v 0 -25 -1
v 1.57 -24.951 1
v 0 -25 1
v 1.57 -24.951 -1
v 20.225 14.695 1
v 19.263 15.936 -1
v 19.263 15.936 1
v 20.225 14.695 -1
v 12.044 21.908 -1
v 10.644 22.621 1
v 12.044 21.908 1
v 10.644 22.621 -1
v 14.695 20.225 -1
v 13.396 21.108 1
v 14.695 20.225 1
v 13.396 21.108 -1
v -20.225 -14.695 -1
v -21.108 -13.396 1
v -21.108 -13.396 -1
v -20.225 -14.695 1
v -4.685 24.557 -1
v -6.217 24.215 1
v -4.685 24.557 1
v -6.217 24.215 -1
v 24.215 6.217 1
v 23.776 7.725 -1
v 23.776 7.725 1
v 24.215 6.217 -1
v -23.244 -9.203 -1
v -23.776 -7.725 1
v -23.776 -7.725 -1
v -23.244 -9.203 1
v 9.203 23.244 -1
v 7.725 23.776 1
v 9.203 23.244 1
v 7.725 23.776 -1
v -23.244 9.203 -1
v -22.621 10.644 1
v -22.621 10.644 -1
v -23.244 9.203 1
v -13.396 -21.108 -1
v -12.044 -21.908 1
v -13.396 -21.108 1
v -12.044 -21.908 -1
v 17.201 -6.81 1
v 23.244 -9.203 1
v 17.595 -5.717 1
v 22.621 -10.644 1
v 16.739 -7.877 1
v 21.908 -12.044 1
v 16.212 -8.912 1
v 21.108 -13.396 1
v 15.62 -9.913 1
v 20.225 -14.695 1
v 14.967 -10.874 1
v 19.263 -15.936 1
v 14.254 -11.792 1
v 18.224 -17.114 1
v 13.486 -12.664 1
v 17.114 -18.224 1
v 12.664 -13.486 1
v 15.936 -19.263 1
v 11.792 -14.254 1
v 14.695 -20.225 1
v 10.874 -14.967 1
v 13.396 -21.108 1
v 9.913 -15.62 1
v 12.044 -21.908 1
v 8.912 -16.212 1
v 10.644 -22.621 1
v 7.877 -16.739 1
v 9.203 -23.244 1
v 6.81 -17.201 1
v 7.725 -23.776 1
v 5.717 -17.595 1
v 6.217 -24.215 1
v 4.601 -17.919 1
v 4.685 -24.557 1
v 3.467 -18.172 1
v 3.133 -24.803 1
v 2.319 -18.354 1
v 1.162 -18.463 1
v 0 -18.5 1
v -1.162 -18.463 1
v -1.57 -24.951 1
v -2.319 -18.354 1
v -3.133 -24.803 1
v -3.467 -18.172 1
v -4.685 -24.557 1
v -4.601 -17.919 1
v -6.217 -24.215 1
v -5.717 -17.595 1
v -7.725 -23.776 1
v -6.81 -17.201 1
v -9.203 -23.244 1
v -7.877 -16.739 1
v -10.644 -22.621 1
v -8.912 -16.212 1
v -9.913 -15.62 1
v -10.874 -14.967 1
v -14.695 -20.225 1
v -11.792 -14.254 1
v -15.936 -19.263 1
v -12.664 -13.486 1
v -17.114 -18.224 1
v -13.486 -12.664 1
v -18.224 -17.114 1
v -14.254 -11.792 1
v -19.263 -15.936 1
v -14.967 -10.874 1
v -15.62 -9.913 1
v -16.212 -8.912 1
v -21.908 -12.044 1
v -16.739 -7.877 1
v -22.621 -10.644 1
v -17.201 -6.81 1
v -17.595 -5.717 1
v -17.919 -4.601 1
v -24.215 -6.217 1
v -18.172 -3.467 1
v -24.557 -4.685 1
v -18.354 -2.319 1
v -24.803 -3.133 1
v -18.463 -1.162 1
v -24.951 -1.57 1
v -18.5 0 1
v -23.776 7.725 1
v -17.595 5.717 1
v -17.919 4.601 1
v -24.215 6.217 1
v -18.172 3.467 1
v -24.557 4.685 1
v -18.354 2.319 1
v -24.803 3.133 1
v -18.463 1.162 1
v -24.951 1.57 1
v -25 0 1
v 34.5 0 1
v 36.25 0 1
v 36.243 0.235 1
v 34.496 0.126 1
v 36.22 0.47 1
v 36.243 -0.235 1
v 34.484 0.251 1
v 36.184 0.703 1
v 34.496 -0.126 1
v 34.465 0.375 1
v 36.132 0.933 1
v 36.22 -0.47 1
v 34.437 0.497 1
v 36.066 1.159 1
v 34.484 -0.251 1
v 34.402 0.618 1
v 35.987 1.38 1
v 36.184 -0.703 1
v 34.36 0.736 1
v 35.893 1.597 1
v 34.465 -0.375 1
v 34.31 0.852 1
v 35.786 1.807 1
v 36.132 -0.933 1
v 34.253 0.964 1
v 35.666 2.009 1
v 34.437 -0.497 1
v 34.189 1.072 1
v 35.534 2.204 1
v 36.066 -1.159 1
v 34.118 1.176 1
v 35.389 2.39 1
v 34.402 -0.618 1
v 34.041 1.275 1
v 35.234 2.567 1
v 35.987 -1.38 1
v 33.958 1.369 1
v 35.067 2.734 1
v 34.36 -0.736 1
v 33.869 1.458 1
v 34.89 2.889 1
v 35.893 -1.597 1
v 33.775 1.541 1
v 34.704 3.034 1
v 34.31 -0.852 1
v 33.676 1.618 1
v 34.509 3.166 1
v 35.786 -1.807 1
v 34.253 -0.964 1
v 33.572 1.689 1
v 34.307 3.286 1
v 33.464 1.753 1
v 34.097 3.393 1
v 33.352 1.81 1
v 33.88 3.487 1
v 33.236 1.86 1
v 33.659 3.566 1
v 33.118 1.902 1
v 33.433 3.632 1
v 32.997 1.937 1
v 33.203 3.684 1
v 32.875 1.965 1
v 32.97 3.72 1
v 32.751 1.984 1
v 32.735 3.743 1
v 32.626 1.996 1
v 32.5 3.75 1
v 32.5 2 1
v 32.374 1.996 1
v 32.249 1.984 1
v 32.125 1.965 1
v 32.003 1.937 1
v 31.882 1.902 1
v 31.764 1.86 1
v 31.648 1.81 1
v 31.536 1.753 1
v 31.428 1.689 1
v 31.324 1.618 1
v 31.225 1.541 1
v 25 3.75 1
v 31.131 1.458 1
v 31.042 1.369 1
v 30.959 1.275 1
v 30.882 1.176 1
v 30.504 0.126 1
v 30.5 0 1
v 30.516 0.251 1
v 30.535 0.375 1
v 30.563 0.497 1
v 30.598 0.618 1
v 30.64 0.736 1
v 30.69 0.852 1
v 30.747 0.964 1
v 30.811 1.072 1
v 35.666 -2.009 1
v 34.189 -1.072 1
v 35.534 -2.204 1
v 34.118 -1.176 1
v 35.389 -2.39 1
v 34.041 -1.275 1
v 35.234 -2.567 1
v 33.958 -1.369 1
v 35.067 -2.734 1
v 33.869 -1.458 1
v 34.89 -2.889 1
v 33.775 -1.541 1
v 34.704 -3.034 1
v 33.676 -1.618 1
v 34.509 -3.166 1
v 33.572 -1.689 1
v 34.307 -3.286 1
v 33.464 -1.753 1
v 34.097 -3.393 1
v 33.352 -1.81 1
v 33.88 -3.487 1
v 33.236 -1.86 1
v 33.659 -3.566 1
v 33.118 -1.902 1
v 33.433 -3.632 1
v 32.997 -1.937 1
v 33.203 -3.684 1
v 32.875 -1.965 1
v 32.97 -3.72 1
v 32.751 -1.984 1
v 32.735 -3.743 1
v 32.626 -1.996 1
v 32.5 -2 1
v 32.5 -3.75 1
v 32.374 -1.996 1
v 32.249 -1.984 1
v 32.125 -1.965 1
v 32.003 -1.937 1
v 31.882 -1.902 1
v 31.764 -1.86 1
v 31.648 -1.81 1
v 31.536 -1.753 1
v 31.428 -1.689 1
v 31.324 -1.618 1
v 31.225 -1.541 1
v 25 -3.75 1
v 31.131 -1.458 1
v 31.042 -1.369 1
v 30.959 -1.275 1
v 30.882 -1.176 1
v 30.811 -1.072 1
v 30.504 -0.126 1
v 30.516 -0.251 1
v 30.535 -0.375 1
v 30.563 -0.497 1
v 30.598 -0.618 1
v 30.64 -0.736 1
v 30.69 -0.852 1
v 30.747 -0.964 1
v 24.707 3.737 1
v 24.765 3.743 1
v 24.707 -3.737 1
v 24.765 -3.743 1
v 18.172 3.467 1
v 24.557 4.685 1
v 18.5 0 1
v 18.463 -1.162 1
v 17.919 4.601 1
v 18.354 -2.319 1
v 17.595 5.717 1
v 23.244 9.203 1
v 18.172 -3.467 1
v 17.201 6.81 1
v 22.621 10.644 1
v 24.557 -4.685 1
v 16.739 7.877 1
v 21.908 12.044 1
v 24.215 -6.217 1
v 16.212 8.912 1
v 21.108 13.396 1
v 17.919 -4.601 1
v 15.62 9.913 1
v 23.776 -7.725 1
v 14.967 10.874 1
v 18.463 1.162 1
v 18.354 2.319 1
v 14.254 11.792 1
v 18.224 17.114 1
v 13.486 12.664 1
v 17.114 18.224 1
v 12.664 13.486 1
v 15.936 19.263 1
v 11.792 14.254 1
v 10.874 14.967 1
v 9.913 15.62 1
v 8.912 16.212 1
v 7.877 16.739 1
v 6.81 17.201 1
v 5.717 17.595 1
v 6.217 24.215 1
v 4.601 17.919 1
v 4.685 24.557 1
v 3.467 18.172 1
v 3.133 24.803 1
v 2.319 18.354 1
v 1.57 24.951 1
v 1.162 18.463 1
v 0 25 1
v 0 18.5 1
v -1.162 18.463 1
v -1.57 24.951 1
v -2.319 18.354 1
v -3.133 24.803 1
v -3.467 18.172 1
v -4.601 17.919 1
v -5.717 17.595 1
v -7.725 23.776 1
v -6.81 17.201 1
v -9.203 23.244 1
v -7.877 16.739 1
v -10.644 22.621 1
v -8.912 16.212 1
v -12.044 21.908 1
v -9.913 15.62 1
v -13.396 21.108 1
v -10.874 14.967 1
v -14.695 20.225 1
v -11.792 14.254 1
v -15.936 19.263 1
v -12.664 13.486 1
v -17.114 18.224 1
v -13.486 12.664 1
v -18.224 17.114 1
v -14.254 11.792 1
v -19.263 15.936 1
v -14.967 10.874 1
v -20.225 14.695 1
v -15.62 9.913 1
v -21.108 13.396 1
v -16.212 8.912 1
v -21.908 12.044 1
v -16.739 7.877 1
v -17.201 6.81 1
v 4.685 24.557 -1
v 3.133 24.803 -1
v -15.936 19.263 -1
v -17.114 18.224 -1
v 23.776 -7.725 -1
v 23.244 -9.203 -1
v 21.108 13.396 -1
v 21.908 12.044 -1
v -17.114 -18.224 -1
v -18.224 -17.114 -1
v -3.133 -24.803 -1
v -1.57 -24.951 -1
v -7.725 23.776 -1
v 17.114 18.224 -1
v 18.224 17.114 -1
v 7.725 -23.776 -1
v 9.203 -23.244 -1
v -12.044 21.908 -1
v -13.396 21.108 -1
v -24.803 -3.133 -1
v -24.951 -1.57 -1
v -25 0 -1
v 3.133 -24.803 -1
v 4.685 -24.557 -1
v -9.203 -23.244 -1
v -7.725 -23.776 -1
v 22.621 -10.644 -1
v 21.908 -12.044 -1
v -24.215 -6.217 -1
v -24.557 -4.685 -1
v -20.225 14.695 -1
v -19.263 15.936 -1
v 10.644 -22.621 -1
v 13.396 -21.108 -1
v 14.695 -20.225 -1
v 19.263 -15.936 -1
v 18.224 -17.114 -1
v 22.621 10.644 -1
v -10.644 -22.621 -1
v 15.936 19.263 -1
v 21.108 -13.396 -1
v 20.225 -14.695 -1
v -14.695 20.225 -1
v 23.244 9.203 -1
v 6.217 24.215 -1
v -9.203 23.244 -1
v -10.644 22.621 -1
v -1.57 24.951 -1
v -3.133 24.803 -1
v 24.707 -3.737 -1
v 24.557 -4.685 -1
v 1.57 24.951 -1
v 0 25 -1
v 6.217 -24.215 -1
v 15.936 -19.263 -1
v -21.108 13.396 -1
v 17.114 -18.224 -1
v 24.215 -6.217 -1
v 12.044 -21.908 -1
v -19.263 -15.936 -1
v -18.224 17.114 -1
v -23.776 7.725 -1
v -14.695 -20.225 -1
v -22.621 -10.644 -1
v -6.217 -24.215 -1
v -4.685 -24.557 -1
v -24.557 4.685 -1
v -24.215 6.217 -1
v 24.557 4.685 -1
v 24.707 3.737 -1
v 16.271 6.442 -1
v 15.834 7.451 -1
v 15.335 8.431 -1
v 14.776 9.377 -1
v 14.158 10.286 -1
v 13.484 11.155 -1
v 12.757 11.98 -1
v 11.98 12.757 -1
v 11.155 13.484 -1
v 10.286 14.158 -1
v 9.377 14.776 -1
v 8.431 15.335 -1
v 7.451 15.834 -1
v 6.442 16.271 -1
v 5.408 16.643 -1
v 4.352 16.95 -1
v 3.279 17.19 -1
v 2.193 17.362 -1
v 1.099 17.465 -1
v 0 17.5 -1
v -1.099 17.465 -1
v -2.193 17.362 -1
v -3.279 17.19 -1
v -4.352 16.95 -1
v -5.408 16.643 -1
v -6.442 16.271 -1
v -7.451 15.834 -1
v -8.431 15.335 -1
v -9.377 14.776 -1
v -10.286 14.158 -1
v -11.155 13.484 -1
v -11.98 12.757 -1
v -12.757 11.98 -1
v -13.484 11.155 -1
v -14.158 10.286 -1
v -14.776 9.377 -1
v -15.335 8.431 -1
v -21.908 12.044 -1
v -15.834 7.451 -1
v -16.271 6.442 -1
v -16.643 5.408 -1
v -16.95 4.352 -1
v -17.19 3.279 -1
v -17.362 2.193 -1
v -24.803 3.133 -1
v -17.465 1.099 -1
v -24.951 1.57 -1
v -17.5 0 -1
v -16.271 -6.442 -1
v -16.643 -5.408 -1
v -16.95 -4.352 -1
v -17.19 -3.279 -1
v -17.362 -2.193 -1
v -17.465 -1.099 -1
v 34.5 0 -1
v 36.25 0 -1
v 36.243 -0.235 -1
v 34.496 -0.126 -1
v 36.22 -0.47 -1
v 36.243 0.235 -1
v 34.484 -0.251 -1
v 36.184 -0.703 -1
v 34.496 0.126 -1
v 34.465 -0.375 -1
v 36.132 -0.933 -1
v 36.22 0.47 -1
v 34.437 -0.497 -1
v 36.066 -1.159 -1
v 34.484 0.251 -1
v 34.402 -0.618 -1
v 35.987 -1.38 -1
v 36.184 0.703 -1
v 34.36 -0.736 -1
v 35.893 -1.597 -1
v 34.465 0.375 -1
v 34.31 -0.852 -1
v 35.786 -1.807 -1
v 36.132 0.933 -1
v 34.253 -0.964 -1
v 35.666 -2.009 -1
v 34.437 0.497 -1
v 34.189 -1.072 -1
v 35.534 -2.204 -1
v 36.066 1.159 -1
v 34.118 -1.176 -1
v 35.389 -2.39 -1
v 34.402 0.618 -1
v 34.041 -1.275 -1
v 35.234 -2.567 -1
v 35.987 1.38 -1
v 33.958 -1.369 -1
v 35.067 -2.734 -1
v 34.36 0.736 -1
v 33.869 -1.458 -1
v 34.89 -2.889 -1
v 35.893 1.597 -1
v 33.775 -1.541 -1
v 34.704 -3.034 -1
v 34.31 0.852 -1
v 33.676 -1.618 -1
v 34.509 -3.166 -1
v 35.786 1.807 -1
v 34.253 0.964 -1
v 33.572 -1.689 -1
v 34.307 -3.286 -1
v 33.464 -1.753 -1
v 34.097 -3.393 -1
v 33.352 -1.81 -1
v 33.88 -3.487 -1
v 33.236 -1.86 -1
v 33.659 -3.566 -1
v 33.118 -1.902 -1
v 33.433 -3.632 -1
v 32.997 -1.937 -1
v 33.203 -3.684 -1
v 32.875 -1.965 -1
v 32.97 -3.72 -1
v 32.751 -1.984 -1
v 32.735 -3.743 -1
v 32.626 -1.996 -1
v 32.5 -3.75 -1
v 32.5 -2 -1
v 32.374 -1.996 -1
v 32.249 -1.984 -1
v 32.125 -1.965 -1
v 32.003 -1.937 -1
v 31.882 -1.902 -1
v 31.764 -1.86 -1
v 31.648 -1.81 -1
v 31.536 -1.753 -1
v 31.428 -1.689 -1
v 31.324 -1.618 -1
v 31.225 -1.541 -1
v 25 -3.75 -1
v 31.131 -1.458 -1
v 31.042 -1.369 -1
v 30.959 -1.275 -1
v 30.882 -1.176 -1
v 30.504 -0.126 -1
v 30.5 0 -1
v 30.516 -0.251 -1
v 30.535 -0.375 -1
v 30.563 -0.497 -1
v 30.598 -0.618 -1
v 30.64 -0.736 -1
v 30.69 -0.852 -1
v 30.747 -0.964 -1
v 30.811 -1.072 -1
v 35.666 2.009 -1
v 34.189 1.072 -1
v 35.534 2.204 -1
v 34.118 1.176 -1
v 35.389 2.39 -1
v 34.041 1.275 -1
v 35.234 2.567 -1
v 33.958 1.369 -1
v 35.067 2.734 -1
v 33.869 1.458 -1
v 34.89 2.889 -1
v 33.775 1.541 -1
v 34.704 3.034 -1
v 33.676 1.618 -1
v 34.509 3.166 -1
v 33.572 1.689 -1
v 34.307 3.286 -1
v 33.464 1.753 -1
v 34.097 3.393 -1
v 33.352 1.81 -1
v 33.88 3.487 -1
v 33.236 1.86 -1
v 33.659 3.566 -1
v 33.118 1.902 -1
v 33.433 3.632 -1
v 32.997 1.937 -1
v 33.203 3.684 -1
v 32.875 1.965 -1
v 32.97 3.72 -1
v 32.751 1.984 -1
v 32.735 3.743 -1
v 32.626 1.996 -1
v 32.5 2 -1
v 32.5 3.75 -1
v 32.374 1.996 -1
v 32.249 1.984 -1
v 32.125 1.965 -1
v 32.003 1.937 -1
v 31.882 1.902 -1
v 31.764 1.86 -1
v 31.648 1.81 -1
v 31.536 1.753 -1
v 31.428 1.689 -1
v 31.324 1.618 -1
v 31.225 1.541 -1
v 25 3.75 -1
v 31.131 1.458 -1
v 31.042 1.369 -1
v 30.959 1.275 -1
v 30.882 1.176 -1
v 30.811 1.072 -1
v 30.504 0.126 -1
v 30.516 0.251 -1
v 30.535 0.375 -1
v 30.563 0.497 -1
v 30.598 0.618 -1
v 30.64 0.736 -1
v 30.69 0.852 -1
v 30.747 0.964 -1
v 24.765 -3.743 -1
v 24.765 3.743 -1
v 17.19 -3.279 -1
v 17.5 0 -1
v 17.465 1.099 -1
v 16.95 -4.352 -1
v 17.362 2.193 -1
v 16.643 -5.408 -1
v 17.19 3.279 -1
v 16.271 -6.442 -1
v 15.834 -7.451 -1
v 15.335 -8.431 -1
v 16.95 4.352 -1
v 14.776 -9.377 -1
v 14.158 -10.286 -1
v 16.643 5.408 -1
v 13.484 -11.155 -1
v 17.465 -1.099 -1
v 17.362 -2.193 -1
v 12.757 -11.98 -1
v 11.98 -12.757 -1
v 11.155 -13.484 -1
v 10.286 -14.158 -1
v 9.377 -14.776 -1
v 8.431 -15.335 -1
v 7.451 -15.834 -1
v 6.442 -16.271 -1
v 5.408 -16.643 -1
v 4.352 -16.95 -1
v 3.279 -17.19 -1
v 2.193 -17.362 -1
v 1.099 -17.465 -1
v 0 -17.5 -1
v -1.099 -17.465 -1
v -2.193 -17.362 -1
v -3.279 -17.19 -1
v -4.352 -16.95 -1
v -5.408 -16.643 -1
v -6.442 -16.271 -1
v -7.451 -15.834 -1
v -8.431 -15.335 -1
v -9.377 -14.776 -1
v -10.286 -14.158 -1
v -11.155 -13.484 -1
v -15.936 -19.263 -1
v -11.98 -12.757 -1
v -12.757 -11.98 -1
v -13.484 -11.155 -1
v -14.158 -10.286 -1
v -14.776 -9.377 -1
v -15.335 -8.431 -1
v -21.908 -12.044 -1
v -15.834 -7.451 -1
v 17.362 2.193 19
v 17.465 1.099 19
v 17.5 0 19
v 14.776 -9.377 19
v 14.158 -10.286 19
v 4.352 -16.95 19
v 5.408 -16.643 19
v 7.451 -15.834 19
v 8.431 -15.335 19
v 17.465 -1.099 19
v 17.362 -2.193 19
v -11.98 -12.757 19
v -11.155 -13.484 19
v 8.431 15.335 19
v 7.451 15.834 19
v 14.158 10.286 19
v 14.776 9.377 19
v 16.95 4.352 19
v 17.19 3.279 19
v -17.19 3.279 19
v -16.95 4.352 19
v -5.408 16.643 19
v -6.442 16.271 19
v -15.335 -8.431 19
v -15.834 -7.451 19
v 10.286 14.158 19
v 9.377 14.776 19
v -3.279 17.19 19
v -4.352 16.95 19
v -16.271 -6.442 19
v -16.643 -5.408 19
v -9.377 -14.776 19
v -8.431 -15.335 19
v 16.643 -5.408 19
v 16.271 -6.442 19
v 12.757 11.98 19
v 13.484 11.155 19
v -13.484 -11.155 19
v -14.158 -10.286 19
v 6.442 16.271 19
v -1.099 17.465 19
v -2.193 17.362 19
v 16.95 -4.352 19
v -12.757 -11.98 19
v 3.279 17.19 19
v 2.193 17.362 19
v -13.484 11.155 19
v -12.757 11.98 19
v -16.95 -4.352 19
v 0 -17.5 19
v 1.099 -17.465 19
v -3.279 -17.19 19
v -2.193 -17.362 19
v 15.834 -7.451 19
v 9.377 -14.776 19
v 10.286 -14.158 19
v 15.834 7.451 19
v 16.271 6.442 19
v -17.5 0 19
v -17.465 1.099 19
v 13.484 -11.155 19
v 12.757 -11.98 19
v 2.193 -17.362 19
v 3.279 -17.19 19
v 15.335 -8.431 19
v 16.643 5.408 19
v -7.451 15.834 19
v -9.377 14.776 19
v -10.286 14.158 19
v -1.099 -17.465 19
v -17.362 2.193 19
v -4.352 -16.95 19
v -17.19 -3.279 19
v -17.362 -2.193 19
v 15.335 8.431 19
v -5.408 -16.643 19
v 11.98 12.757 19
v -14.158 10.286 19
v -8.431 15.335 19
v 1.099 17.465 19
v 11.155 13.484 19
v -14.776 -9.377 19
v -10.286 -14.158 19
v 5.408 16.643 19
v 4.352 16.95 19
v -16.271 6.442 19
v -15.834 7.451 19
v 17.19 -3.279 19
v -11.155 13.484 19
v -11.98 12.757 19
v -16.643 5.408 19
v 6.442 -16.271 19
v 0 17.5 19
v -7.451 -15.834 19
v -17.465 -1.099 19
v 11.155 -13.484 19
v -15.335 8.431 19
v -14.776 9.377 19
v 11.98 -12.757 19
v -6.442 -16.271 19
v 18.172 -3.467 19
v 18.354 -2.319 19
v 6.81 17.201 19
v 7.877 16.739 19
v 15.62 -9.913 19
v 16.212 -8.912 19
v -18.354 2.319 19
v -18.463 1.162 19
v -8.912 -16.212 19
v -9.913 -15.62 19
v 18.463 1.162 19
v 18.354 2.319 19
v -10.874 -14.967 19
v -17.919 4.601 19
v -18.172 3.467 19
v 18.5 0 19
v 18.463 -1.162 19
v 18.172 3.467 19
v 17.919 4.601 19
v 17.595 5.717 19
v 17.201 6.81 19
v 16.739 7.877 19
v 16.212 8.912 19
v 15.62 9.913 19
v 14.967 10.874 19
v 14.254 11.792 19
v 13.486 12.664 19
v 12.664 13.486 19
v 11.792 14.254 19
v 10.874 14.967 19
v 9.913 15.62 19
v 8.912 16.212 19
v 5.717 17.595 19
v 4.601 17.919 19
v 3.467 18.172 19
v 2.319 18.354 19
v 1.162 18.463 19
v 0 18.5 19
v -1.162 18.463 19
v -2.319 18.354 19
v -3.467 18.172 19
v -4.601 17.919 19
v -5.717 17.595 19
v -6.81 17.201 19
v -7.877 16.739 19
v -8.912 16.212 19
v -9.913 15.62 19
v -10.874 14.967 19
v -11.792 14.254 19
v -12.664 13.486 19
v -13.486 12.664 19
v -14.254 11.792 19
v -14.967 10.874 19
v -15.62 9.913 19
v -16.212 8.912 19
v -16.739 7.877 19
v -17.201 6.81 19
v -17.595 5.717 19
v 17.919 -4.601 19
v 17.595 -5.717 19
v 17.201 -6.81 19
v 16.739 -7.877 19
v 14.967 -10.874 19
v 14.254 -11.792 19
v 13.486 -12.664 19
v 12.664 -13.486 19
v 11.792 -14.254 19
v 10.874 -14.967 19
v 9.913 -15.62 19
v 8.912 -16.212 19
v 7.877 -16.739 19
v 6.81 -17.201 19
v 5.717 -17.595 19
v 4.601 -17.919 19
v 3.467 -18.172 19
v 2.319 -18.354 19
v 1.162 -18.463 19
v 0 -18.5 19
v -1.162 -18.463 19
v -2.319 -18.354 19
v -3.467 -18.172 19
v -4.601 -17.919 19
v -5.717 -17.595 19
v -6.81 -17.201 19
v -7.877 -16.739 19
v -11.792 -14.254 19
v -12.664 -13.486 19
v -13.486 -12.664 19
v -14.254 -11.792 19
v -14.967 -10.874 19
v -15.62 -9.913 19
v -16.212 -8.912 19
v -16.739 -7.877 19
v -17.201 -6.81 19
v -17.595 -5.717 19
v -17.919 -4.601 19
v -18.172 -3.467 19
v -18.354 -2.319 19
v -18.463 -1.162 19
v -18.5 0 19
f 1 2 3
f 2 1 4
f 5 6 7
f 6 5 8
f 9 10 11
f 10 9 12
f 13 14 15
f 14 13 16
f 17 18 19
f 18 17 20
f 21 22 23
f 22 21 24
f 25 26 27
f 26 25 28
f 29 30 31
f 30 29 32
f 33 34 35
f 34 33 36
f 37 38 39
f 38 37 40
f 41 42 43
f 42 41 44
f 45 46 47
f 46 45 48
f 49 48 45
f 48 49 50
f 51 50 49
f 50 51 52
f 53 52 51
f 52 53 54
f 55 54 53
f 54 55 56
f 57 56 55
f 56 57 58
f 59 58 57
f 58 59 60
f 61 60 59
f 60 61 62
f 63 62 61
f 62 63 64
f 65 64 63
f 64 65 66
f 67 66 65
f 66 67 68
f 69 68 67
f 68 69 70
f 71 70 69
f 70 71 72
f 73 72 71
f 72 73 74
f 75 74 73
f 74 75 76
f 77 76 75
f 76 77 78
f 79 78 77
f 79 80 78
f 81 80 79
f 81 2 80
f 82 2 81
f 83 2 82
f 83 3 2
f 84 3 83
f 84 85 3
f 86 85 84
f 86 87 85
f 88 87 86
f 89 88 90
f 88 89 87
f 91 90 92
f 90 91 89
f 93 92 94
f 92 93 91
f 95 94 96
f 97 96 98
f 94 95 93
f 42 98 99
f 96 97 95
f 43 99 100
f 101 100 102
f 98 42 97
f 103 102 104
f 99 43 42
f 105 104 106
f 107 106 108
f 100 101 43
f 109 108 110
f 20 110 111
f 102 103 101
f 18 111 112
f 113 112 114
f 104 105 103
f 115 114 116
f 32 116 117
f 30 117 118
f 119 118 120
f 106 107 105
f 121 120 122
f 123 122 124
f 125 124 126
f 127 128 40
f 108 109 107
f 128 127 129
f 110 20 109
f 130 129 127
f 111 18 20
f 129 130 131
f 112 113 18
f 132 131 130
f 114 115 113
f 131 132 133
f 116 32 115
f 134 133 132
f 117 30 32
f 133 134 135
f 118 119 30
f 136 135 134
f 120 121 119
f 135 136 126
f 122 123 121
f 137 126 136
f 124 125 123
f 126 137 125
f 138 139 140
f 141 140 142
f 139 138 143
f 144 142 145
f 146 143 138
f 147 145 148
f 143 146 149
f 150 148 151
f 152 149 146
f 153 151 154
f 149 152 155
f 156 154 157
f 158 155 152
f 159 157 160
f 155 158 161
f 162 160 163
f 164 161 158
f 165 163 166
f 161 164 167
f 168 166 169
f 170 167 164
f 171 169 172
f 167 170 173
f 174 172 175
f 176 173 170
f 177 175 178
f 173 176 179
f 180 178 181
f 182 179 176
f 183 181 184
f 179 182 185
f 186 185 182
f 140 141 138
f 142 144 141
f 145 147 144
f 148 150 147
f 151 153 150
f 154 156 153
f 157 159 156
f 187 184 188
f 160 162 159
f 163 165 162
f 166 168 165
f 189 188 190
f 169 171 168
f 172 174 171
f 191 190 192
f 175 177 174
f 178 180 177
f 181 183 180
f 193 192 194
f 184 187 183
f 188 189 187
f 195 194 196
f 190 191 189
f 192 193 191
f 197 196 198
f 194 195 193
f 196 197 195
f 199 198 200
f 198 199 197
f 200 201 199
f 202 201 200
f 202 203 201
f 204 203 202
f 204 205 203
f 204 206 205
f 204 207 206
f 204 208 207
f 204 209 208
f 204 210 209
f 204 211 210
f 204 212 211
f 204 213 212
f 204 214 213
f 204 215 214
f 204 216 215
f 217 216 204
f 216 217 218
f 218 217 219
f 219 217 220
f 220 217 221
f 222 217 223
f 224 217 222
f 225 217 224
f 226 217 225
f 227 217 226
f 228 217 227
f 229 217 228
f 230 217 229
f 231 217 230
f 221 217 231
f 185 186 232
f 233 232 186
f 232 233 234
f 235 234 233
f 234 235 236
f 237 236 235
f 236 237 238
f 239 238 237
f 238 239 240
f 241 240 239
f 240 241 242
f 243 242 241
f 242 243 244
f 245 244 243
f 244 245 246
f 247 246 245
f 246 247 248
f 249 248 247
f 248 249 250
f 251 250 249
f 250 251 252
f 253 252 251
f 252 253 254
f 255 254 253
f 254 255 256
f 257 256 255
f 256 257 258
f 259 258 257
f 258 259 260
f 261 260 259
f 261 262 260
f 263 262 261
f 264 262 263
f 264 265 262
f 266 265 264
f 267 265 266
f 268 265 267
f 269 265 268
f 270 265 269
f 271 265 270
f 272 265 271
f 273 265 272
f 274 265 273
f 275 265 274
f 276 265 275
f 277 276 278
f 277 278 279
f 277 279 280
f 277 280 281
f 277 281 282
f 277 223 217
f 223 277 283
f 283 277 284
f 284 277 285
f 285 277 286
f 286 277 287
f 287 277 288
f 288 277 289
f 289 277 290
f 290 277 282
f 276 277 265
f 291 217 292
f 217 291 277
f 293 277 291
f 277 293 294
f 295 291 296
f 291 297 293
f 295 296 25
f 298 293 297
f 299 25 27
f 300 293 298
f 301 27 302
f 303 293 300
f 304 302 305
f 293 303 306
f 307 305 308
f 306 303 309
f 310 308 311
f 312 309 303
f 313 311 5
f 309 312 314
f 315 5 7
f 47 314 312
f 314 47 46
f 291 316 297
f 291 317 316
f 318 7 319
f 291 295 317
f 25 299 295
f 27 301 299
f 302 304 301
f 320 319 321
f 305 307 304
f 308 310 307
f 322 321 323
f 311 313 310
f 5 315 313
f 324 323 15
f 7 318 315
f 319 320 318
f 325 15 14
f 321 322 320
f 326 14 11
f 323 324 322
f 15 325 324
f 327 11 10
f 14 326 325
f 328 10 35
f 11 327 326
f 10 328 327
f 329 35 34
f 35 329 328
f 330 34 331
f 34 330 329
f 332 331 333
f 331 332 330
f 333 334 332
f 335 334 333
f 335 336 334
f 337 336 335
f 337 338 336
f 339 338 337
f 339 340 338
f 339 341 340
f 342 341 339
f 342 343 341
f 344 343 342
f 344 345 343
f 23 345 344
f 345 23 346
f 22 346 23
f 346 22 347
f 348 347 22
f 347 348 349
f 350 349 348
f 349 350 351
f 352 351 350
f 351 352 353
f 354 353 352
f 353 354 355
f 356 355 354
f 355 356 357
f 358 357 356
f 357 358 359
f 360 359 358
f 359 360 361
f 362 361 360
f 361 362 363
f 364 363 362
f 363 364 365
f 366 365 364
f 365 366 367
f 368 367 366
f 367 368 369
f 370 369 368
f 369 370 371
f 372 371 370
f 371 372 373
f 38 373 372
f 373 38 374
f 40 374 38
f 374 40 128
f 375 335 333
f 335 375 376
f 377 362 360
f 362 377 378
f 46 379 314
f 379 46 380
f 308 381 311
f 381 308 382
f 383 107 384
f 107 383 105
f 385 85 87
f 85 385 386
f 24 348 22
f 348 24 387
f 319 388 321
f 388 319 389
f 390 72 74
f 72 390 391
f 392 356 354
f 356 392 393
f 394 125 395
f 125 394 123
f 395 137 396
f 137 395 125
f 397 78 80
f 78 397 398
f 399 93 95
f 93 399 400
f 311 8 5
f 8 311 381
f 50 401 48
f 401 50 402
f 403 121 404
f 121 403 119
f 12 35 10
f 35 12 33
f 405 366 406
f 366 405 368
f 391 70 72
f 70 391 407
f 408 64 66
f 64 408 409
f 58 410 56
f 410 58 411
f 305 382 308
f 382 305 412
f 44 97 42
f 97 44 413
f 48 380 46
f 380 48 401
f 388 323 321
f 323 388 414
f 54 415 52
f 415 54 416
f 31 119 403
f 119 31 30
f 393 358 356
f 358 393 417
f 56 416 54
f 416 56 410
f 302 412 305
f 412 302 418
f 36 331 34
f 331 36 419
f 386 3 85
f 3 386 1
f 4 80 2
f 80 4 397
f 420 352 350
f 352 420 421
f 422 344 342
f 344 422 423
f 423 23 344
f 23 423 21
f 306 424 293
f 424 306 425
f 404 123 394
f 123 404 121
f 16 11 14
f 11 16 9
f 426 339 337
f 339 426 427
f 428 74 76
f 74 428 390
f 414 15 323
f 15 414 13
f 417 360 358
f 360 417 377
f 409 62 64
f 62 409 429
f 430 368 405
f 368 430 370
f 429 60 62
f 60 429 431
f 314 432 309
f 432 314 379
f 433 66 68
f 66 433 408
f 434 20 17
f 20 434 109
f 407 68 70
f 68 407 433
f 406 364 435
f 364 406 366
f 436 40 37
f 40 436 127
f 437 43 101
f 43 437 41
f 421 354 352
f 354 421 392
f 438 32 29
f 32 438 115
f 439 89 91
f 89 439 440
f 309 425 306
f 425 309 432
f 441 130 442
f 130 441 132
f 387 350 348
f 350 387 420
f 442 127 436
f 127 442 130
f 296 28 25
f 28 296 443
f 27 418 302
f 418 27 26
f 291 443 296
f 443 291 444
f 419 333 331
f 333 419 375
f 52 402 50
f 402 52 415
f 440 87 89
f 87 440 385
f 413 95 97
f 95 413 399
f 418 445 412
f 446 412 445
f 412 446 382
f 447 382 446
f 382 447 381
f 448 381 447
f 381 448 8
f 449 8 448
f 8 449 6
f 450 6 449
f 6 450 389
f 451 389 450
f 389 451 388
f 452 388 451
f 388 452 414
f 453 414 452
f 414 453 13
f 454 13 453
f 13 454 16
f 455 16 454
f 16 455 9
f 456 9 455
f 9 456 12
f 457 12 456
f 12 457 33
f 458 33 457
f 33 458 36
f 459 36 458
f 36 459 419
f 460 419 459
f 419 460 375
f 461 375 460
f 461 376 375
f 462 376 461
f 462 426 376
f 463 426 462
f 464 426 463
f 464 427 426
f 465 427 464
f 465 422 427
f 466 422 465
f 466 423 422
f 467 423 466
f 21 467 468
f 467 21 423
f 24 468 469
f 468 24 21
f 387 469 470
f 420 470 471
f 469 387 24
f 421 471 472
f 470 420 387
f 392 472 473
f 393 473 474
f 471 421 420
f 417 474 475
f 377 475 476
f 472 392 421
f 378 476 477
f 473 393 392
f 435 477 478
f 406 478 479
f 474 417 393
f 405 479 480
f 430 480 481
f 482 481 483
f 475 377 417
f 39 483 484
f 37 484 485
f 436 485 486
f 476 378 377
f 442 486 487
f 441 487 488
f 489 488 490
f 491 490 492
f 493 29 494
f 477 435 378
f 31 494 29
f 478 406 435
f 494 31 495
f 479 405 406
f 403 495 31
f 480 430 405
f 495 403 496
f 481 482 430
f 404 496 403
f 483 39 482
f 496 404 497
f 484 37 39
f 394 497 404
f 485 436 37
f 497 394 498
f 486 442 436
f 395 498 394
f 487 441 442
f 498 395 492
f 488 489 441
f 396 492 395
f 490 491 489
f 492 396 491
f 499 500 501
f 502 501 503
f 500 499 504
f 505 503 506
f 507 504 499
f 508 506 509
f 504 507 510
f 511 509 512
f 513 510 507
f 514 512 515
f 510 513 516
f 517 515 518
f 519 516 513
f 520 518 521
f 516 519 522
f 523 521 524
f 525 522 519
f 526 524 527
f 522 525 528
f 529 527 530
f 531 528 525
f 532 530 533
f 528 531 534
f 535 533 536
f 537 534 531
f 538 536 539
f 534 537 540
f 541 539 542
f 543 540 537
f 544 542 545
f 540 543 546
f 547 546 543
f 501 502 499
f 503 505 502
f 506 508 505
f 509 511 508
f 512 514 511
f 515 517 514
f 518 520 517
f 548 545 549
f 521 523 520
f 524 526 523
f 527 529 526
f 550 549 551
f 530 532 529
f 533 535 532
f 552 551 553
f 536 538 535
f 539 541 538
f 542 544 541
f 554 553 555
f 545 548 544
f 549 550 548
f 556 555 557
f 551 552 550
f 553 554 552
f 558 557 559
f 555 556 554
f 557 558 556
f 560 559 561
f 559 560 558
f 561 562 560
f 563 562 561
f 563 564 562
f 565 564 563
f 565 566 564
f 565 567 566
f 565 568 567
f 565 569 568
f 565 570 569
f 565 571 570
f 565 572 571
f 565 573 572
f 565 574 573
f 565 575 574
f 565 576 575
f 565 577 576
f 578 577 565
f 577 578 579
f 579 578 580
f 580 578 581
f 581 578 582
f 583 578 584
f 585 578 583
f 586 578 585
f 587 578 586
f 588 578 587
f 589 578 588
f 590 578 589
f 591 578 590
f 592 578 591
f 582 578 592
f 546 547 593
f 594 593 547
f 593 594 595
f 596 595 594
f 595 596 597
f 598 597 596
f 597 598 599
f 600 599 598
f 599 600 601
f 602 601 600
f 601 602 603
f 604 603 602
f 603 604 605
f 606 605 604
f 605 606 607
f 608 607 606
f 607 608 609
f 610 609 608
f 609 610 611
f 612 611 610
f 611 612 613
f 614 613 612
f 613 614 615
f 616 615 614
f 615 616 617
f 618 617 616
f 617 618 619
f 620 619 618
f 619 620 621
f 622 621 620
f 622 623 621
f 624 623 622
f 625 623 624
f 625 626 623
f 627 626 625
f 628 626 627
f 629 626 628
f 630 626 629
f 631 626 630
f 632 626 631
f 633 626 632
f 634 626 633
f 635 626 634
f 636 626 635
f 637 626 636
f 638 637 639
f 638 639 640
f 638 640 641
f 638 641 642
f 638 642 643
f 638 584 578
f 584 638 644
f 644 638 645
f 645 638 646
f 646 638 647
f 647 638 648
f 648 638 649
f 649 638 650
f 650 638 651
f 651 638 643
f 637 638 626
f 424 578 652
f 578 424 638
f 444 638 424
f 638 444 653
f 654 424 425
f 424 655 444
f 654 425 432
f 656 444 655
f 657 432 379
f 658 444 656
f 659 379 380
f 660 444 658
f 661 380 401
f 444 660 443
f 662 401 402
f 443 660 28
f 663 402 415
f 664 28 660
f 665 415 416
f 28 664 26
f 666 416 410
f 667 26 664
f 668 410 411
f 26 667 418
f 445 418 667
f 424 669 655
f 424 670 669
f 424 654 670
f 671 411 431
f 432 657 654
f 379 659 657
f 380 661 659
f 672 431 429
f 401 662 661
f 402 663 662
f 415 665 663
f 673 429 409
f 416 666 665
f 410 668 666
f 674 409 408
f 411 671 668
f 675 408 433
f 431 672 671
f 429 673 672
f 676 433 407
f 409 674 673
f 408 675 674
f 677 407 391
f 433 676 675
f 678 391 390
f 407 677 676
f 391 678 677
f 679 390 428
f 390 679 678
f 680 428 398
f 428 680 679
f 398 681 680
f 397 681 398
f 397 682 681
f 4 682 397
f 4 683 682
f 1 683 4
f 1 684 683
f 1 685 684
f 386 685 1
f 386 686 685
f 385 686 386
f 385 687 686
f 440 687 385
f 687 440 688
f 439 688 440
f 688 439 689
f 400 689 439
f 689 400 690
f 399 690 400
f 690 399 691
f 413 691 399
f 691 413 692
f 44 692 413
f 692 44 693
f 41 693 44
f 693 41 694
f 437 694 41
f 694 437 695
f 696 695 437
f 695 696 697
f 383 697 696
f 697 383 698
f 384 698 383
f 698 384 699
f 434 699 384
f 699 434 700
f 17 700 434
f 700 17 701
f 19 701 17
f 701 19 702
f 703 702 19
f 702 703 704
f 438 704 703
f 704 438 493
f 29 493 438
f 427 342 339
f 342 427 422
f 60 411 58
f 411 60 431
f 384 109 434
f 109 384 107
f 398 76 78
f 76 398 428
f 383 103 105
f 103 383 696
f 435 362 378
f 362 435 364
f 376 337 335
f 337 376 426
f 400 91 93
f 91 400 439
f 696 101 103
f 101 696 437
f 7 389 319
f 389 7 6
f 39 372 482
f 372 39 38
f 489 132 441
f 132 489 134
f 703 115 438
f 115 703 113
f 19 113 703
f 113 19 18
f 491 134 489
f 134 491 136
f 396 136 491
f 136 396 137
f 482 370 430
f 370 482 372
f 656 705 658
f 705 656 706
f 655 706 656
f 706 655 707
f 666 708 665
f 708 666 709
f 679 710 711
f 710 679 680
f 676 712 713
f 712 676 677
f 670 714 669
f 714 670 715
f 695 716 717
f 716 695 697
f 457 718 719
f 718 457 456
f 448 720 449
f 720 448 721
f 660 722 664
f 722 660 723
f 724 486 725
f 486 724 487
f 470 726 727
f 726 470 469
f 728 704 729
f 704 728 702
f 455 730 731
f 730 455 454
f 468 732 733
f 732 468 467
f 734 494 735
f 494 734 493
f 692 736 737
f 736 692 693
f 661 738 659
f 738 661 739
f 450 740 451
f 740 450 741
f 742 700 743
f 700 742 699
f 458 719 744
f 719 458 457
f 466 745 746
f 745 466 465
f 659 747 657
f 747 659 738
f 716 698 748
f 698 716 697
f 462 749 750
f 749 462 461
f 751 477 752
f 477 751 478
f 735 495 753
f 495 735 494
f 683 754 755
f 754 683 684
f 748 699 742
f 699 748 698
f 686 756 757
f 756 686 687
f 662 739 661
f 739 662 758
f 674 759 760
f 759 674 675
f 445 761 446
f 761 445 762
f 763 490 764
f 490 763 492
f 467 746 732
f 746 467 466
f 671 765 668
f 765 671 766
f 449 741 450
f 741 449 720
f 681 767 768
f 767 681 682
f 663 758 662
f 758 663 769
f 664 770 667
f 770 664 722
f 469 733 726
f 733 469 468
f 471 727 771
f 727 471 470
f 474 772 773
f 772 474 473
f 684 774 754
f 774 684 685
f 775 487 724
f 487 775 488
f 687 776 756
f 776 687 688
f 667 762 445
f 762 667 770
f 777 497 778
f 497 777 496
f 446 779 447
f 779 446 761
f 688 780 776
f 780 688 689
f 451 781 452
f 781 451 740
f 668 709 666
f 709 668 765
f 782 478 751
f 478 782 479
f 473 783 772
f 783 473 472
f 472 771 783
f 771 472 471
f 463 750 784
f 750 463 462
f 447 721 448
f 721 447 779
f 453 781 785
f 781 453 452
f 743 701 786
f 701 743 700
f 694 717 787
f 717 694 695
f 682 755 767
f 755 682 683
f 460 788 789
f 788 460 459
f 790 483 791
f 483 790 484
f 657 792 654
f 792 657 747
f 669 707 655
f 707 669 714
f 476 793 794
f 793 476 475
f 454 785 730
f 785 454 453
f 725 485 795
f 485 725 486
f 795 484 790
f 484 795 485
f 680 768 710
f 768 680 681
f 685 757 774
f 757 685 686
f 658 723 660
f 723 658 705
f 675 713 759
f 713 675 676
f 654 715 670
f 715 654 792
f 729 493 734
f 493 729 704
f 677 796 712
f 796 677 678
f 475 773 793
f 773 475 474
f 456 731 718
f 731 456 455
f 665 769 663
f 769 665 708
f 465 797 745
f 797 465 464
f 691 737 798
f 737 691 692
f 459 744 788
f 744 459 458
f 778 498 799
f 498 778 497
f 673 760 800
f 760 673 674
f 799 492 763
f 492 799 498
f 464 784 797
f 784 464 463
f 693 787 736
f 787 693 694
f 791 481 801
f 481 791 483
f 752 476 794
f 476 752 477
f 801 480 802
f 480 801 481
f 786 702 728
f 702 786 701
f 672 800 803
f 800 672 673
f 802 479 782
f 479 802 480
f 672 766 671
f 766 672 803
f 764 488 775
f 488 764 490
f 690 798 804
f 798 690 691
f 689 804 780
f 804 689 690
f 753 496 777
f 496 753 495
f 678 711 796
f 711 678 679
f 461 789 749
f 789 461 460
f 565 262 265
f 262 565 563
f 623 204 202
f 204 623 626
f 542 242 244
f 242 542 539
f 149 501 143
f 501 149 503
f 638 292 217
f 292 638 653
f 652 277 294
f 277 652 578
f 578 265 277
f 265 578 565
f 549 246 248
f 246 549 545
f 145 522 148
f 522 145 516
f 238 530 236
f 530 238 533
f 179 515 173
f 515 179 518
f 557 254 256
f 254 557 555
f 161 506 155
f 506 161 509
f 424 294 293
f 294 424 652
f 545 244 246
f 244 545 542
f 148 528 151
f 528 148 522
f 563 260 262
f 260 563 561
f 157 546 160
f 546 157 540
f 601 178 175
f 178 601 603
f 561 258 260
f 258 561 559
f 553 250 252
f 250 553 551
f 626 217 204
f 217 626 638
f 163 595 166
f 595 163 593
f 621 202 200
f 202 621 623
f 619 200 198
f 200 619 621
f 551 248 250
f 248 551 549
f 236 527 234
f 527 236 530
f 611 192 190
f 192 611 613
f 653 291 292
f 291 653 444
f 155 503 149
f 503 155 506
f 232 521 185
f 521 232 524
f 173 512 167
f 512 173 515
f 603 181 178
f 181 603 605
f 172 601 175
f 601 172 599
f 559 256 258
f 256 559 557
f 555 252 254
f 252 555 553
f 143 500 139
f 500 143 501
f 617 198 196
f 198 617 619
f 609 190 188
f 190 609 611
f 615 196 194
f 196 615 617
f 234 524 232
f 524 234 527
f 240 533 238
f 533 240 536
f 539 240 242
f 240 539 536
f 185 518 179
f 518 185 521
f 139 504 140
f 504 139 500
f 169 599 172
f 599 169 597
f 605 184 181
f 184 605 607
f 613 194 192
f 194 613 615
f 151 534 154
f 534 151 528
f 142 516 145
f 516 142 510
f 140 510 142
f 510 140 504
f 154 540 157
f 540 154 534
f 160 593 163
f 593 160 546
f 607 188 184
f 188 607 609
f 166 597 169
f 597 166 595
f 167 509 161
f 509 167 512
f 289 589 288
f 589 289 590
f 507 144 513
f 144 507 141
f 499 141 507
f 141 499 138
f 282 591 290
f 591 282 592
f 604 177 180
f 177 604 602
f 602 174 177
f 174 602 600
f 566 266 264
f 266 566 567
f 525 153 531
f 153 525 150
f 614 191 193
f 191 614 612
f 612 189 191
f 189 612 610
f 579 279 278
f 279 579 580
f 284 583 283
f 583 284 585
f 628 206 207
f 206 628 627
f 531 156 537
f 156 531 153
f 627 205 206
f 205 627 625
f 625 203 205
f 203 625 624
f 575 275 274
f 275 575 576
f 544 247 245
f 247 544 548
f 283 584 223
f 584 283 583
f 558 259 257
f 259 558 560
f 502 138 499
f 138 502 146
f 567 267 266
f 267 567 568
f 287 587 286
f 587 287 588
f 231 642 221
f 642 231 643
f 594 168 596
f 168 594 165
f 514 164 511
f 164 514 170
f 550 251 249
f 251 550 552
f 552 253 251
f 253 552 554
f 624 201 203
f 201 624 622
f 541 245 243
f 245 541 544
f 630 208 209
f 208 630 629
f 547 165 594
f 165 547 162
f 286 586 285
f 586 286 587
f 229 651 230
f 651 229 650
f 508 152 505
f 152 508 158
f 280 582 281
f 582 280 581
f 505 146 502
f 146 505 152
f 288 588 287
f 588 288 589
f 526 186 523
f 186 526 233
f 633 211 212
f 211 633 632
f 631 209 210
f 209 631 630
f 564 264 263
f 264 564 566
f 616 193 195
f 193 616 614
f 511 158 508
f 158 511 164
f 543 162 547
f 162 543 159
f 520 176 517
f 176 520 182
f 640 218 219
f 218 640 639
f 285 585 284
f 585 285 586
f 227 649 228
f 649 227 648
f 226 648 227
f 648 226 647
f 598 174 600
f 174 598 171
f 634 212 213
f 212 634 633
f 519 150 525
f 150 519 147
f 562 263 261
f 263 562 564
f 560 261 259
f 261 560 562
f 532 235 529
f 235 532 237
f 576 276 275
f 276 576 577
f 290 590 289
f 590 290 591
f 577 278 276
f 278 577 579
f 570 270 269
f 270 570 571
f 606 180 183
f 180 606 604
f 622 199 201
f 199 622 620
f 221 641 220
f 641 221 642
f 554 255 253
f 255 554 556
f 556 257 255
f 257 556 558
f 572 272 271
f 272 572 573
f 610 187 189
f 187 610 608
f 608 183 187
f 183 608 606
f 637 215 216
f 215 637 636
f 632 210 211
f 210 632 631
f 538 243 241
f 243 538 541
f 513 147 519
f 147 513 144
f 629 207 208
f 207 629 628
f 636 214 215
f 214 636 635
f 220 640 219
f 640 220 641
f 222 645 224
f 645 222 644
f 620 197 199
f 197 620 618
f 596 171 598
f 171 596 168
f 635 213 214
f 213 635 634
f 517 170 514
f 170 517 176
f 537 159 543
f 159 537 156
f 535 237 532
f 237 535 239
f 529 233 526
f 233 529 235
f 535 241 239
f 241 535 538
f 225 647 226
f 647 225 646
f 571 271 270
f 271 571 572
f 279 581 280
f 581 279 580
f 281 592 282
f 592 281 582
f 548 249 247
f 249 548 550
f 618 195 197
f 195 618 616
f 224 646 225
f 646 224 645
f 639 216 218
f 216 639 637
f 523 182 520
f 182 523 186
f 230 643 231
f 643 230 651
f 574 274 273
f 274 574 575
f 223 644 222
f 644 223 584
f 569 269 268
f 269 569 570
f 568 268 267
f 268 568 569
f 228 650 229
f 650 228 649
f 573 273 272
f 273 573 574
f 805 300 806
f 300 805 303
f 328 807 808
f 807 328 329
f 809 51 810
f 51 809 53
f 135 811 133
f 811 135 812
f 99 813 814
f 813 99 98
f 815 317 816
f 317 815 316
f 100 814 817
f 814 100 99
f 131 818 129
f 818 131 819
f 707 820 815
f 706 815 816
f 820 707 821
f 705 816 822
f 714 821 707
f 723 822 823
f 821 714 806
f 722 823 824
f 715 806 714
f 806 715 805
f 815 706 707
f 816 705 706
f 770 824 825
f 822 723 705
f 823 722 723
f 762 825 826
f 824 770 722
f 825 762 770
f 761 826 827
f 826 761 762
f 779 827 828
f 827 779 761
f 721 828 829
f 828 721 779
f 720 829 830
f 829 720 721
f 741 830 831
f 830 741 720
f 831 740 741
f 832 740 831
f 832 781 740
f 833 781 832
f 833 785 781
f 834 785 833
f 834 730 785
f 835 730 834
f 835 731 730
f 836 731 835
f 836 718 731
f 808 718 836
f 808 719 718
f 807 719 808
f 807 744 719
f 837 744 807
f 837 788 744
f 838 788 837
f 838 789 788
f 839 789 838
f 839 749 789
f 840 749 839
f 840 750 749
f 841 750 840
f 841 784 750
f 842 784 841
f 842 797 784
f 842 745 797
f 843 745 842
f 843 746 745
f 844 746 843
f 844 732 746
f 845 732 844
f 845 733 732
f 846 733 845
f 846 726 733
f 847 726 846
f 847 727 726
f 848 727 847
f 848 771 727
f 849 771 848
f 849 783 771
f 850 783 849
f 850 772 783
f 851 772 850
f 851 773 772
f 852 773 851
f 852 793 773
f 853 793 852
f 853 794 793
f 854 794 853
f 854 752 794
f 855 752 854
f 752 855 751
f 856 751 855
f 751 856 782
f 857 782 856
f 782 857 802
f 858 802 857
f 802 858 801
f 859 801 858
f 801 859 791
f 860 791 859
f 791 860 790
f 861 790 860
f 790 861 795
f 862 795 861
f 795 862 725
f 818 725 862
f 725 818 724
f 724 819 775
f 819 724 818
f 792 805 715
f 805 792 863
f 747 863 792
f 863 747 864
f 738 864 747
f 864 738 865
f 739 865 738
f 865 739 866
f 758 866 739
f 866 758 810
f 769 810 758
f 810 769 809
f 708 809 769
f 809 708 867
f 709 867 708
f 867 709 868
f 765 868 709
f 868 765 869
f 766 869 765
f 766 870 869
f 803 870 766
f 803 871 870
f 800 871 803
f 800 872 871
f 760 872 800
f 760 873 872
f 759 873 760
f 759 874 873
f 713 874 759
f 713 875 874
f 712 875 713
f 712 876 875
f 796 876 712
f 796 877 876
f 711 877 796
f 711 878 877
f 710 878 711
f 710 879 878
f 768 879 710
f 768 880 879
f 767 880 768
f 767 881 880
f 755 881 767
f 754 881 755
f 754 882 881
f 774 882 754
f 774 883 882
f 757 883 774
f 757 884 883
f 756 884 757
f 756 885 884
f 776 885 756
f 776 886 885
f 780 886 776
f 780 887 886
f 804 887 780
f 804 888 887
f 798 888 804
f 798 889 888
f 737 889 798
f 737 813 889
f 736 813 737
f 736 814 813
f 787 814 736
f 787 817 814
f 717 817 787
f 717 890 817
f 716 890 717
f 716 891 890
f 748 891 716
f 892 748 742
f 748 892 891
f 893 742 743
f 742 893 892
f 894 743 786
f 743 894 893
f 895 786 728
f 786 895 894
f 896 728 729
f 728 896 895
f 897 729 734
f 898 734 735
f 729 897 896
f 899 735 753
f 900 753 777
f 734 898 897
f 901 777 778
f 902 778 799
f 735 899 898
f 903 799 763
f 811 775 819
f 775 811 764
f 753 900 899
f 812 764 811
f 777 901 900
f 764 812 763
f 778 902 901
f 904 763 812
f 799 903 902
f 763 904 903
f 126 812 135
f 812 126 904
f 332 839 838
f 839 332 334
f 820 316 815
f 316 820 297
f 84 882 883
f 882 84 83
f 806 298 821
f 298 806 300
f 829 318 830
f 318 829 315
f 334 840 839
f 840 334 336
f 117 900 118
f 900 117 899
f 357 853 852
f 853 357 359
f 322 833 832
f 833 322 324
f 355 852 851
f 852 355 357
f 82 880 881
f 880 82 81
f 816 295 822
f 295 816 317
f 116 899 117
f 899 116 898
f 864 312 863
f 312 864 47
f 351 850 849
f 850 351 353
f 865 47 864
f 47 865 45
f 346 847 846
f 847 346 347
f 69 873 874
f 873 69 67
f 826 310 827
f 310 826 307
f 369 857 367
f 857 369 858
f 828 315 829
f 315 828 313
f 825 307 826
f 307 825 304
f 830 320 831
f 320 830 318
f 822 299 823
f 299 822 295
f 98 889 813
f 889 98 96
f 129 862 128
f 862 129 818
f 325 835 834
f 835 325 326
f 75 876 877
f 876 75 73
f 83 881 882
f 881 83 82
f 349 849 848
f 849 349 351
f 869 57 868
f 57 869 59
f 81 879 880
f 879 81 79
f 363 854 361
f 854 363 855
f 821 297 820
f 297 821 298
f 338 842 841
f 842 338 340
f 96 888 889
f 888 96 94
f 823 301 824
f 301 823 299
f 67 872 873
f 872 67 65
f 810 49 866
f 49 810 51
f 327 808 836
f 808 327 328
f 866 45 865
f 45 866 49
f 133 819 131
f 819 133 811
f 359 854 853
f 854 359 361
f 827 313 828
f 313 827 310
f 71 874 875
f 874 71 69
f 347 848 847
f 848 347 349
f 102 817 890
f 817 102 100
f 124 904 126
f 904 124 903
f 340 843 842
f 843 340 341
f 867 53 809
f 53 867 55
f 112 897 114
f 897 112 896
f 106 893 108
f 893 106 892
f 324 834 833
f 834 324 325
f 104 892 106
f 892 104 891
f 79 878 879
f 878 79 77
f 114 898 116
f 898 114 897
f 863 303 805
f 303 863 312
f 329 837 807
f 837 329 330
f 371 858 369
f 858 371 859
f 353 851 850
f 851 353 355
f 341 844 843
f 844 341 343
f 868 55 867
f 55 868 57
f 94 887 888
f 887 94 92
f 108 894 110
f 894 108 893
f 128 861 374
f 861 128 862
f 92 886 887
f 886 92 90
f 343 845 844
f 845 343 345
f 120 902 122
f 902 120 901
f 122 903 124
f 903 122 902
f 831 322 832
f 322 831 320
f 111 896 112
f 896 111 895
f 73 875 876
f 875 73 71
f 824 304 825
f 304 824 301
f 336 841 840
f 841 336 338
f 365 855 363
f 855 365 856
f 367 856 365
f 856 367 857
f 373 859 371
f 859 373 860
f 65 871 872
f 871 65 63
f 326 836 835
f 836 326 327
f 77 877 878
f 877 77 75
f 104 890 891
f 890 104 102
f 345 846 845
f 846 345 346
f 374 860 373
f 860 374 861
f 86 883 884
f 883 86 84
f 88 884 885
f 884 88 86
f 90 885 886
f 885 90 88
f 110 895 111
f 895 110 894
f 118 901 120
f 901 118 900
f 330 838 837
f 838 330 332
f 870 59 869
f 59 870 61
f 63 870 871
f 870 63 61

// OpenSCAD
$fn=100;
rim=7.5;
thickness=2;
internaldiameter=35;
lip=20;
lipthickness=2;

module keyhandle() {
    difference() {
        cylinder(h=thickness, d=internaldiameter+(rim*2), center=true);
        cylinder(h=thickness+4, d=internaldiameter, center=true);
    }
}

module tag() {
    difference(){
        hull() {
        translate([internaldiameter/2+rim,0,-thickness/2]) cylinder(h=thickness, d=7.5);
        translate([internaldiameter/2+(rim*2),0,-thickness/2]) cylinder(h=thickness, d=7.5);
        }
        translate([internaldiameter/2+(rim*2),0,-thickness]) cylinder(h=thickness*2, d=4);
    }
}

module lip() {
    difference() {
        translate([0,0,9]) color ([1,0,0]) cylinder(h=lip, d=internaldiameter+thickness, center=true);
        translate([0,0,9]) color ([0,1,0]) cylinder(h=lip*2, d=internaldiameter, center=true);
    }
}

union() {
    keyhandle();
    tag();
    lip();
}
